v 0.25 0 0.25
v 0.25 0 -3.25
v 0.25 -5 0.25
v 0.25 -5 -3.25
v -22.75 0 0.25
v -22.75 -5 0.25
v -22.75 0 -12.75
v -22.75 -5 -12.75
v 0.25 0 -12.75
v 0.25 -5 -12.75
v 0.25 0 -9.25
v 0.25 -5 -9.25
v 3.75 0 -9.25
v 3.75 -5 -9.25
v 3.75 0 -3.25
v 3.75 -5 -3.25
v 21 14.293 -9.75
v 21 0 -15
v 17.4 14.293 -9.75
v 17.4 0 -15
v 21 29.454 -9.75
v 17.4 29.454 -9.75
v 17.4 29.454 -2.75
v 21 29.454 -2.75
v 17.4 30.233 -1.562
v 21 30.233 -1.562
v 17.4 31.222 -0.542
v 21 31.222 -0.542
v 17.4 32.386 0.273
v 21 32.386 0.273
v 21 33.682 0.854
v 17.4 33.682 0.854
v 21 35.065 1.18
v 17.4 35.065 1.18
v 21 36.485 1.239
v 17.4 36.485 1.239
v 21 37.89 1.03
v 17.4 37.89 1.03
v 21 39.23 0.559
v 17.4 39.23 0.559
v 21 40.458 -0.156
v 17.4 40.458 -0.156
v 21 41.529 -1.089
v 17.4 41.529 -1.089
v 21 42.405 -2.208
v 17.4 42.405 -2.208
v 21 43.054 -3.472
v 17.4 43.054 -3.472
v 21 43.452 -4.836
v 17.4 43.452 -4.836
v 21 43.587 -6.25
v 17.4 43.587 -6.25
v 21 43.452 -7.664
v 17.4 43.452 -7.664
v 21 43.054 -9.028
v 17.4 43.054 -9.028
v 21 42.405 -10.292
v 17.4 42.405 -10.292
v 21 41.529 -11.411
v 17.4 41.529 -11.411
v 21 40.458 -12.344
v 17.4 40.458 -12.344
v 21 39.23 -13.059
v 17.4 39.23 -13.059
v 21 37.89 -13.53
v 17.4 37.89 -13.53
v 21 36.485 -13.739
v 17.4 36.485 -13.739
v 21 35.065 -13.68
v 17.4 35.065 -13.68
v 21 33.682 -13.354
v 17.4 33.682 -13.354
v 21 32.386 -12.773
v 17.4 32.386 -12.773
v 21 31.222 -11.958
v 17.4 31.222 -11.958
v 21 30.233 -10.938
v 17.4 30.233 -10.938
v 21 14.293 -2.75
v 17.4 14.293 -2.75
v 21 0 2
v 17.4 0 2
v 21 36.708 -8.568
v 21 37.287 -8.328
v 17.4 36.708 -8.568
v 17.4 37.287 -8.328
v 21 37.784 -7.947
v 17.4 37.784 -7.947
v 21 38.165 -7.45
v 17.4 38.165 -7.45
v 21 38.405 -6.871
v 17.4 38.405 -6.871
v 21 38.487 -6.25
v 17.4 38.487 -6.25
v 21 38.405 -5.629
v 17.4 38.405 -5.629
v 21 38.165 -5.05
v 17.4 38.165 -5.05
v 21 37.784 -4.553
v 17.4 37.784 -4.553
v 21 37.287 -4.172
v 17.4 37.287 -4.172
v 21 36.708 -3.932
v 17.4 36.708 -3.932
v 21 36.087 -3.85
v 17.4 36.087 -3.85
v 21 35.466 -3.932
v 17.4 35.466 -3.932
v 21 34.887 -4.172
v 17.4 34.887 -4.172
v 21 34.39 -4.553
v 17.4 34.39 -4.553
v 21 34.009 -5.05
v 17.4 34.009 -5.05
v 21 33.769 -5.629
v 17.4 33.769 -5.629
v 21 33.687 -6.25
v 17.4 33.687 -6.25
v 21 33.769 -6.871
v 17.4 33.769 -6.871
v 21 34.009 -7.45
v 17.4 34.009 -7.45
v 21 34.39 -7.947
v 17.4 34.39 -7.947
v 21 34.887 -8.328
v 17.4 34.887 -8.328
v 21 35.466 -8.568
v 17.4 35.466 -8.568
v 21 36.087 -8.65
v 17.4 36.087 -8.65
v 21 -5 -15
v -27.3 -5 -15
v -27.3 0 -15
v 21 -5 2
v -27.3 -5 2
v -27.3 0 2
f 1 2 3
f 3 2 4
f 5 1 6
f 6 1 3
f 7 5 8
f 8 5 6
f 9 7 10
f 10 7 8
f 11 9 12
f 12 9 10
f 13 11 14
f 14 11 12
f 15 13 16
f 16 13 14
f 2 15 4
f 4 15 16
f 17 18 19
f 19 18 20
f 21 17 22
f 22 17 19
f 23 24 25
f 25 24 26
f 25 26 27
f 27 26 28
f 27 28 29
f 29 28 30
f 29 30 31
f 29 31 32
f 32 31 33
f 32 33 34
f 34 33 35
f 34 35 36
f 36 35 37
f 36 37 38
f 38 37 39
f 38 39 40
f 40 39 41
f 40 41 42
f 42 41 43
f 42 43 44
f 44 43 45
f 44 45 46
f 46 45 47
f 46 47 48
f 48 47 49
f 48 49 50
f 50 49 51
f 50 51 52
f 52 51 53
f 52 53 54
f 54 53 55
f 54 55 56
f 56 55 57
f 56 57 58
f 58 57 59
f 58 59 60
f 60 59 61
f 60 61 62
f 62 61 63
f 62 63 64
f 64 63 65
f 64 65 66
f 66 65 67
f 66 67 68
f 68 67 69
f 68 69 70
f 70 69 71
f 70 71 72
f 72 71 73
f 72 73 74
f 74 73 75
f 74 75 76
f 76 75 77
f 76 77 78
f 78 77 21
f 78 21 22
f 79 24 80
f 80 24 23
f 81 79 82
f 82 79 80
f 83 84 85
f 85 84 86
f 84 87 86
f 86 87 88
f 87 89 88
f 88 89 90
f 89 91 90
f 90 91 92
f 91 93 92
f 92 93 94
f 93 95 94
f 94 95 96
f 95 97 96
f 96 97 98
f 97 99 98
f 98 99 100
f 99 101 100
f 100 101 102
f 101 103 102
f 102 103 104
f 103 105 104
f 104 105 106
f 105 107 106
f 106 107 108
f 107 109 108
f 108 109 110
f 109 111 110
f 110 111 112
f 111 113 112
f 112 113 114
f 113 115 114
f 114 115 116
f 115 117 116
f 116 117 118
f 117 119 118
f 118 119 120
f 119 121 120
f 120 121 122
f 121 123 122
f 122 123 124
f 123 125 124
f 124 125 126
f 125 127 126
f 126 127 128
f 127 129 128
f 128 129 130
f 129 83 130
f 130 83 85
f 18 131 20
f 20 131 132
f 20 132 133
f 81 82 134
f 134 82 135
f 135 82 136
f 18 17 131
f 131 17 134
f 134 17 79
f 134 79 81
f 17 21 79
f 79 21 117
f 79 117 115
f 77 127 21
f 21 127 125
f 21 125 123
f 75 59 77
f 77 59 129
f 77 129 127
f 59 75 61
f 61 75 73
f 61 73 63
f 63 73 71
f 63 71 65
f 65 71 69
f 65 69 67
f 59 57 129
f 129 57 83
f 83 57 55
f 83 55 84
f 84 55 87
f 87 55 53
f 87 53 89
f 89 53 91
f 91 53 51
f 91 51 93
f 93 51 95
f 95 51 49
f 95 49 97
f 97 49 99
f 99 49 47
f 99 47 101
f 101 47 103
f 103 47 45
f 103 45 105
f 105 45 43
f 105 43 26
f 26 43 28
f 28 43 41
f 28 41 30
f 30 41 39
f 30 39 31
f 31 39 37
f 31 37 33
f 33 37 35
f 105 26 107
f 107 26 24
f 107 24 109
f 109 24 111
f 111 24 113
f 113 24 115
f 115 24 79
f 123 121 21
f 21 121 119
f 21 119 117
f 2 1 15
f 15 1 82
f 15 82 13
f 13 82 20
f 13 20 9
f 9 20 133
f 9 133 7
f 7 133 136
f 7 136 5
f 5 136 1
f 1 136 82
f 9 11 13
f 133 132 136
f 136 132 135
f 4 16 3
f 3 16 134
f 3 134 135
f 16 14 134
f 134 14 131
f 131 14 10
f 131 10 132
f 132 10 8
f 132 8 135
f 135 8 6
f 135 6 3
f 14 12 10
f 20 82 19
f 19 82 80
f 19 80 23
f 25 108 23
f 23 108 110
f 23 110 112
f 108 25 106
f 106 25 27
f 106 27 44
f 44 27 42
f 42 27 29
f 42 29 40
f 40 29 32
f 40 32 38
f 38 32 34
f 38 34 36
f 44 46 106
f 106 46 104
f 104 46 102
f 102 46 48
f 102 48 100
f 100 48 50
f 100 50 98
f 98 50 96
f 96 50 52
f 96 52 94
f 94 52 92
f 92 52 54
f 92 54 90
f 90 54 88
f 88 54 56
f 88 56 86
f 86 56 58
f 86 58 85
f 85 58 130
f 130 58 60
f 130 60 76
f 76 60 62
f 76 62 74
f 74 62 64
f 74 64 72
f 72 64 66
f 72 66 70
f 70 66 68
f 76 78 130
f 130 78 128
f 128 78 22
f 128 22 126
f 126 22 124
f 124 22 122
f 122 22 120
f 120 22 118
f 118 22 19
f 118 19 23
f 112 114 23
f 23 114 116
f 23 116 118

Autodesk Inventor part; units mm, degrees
ref_plane "YZ Plane" through (0, 0, 0) normal (1, 0, 0) x (0, 1, 0)
ref_plane "XZ Plane" through (0, 0, 0) normal (0, 1, 0) x (-1, 0, 0)
ref_plane "XY Plane" through (0, 0, 0) normal (0, 0, 1) x (1, 0, 0)
sketch "Sketch1" plane through (0, 0, 0) normal (0, 0, 1) x (1, 0, 0)
  line L0 (-27.3, -5) -> (21, -5)
  line L1 (21, 0) -> (-27.3, 0)
  line L2 (-27.3, 0) -> (-27.3, -5)
  line L3 (17.4, 46.3236) -> (17.4, 0)
  line L4 (17.4, 0) -> (21, 0)
  line L5 (21, 41.8826) -> (21, 41.2832) projected
  line L6 (17.4, 46.3236) -> (21, 46.3236)
  line L7 (21, 46.3236) -> (21, 0)
  line L8 (21, 0) -> (17.4, 0)
  line L9 (17.4, 0) -> (17.4, 46.3236)
  line L10 (21, 0) -> (21, -5)
  point P0 (0, 0)
  point P1 (-27.3, 0)
  point P2 (17.4, 38.1655)
extrude "Extrusion1" add sketch "Sketch1" against normal blind 15
sketch "Sketch2" plane through (0, 0, 0) normal (0, 0, 1) x (1, 0, 0)
  line L0 (17.4, 0) -> (-27.3, 0) projected
  line L1 (-27.3, 0) -> (-27.3, -5) projected
  line L2 (21, -5) -> (21, 46.3236) projected
  line L3 (21, 46.3236) -> (17.4, 46.3236) projected
  line L4 (17.4, 46.3236) -> (17.4, 0) projected
  line L5 (-27.3, -5) -> (21, -5) projected
  point P0 (0, 0)
extrude "Extrusion2" add sketch "Sketch2" along normal blind 2
sketch "Sketch3" plane through (17.4, 0, -15) normal (-1, 0, 0) x (0, 0, 1)
  line L0 (10.8285, 34.887) -> (11.0682, 35.4658) projected
  line L1 (11.15, 36.087) -> (11.0682, 35.4658) projected
  line L2 (11.0682, 36.7082) -> (11.15, 36.087) projected
  line L3 (10.8285, 37.287) -> (11.0682, 36.7082) projected
  line L4 (10.4471, 37.7841) -> (10.8285, 37.287) projected
  line L5 (9.95, 38.1655) -> (10.4471, 37.7841) projected
  line L6 (9.3712, 38.4052) -> (9.95, 38.1655) projected
  line L7 (9.3712, 38.4052) -> (8.75, 38.487) projected
  line L8 (8.1288, 38.4052) -> (8.75, 38.487) projected
  line L9 (8.1288, 38.4052) -> (7.55, 38.1655) projected
  line L10 (7.55, 38.1655) -> (7.0529, 37.7841) projected
  line L11 (7.0529, 37.7841) -> (6.6715, 37.287) projected
  line L12 (6.6715, 37.287) -> (6.4318, 36.7082) projected
  line L13 (6.4318, 36.7082) -> (6.35, 36.087) projected
  line L14 (6.35, 36.087) -> (6.4318, 35.4658) projected
  line L15 (6.4318, 35.4658) -> (6.6715, 34.887) projected
  line L16 (6.6715, 34.887) -> (7.0529, 34.3899) projected
  line L17 (7.0529, 34.3899) -> (7.55, 34.0085) projected
  line L18 (8.1288, 33.7688) -> (7.55, 34.0085) projected
  line L19 (8.1288, 33.7688) -> (8.75, 33.687) projected
  line L20 (8.75, 33.687) -> (9.3712, 33.7688) projected
  line L21 (9.3712, 33.7688) -> (9.95, 34.0085) projected
  line L22 (9.95, 34.0085) -> (10.4471, 34.3899) projected
  line L23 (10.8285, 34.887) -> (10.4471, 34.3899) projected
  line L24 (8.75, 35.087) -> (9.0088, 35.1211) projected
  line L25 (8.4912, 35.1211) -> (8.75, 35.087) projected
  line L26 (8.25, 35.221) -> (8.4912, 35.1211) projected
  line L27 (8.0429, 35.3799) -> (8.25, 35.221) projected
  line L28 (7.884, 35.587) -> (8.0429, 35.3799) projected
  line L29 (7.7841, 35.8282) -> (7.884, 35.587) projected
  line L30 (7.75, 36.087) -> (7.7841, 35.8282) projected
  line L31 (7.7841, 36.3458) -> (7.75, 36.087) projected
  line L32 (7.884, 36.587) -> (7.7841, 36.3458) projected
  line L33 (8.0429, 36.7941) -> (7.884, 36.587) projected
  line L34 (8.25, 36.953) -> (8.0429, 36.7941) projected
  line L35 (8.4912, 37.0529) -> (8.25, 36.953) projected
  line L36 (8.75, 37.087) -> (8.4912, 37.0529) projected
  line L37 (8.75, 37.087) -> (9.0088, 37.0529) projected
  line L38 (9.0088, 37.0529) -> (9.25, 36.953) projected
  line L39 (9.25, 36.953) -> (9.4571, 36.7941) projected
  line L40 (9.4571, 36.7941) -> (9.616, 36.587) projected
  line L41 (9.616, 36.587) -> (9.7159, 36.3458) projected
  line L42 (9.7159, 36.3458) -> (9.75, 36.087) projected
  line L43 (9.75, 36.087) -> (9.7159, 35.8282) projected
  line L44 (9.7159, 35.8282) -> (9.616, 35.587) projected
  line L45 (9.616, 35.587) -> (9.4571, 35.3799) projected
  line L46 (9.4571, 35.3799) -> (9.25, 35.221) projected
  line L47 (9.25, 35.221) -> (9.0088, 35.1211) projected
  circle A0 centre (8.75, 36.087) radius 2.5
  arc A1 (12.25, 29.4537) -> (5.25, 29.4537) centre (8.75, 36.087) ccw
  line L48 (8.75, 36.087) -> (8.75, 28.587)
  line L49 (0, 0) -> (17, 0) projected
  line L50 (0, -5) -> (0, 0) projected
  line L51 (0, -5) -> (17, -5) projected
  line L52 (17, 0) -> (17, -5) projected
  line L53 (8.75, 28.587) -> (8.75, 0)
  line L54 (0, 0) -> (17, 0) projected
  line L55 (5.25, 14.2935) -> (5.25, 28.587)
  line L56 (12.25, 28.587) -> (12.25, 14.2935)
  line L57 (12.25, 0) -> (5.25, 0)
  line L58 (5.25, 0) -> (12.25, 28.587) construction
  line L59 (5.25, 28.587) -> (12.25, 0) construction
  line L60 (12.25, 28.587) -> (12.25, 29.4537)
  line L61 (5.25, 28.587) -> (5.25, 29.4537)
  line L62 (0, 46.3236) -> (17, 46.3236) projected
  line L63 (17, 46.3236) -> (0, 46.3236)
  line L64 (0, 46.3236) -> (0, 0)
  line L65 (0, 0) -> (17, 0)
  line L66 (17, 0) -> (17, 46.3236)
  line L67 (5.25, 14.2935) -> (0, 0)
  line L68 (12.25, 14.2935) -> (17, 0)
  point P0 (15, 0)
  point P1 (8.75, 14.2935)
  dimension "d6" = 5
  dimension "d7" = 15
  dimension "d8" = 7
extrude "Extrusion3" cut sketch "Sketch3" against normal up to surface (3.6 mm away) contours L25 L26 L27 L28 L29 L30 L31 L32 L33 L34 L35 L36 L37 L38 L39 L40 L41 L42 L43 L44 L45 L46 L47 L24 | L23 L22 L21 L20 L19 L18 L17 L16 L15 L14 L13 L12 L11 L10 L9 L8 L7 L6 L5 L4 L3 L2 L1 L0 | L64 L62 L66 L68 L56 L60 A1 L61 L55 L67
sketch "Sketch5" plane through (-27.3, -5, -15) normal (0, -1, 0) x (1, 0, 0)
  line L0 (4.8, 15) -> (4.8, 2.5) projected
  line L1 (27.3, 15) -> (4.8, 15) projected
  line L2 (27.3, 2.5) -> (27.3, 15) projected
  line L3 (27.3, 2.5) -> (4.8, 2.5) projected
  line L4 (4.8, 2.5) -> (27.3, 15)
  line L5 (27.55, 2.25) -> (4.55, 2.25)
  line L6 (4.55, 2.25) -> (4.55, 15.25)
  line L7 (4.55, 15.25) -> (27.55, 15.25)
  line L8 (27.55, 15.25) -> (27.55, 2.25)
  line L9 (27.55, 2.25) -> (4.55, 15.25) construction
  line L10 (4.55, 2.25) -> (27.55, 15.25) construction
  line L11 (27.55, 5.75) -> (31.05, 5.75)
  line L12 (31.05, 5.75) -> (31.05, 11.75)
  line L13 (31.05, 11.75) -> (27.55, 11.75)
  line L14 (24.05, 5.75) -> (31.05, 11.75) construction
  line L15 (31.05, 5.75) -> (24.05, 11.75) construction
  point P0 (16.05, 8.75)
  point P1 (27.55, 8.75)
  dimension "d11" = 23
  dimension "d12" = 13
  dimension "d13" = 7
  dimension "d14" = 6
extrude "Extrusion4" cut sketch "Sketch5" against normal up to surface (5 mm away) contours L1 L4 L0 | L4 L2 L3 | L5 L6 L7 L8 | L8 L13 L12 L11
properties part number "arm"
